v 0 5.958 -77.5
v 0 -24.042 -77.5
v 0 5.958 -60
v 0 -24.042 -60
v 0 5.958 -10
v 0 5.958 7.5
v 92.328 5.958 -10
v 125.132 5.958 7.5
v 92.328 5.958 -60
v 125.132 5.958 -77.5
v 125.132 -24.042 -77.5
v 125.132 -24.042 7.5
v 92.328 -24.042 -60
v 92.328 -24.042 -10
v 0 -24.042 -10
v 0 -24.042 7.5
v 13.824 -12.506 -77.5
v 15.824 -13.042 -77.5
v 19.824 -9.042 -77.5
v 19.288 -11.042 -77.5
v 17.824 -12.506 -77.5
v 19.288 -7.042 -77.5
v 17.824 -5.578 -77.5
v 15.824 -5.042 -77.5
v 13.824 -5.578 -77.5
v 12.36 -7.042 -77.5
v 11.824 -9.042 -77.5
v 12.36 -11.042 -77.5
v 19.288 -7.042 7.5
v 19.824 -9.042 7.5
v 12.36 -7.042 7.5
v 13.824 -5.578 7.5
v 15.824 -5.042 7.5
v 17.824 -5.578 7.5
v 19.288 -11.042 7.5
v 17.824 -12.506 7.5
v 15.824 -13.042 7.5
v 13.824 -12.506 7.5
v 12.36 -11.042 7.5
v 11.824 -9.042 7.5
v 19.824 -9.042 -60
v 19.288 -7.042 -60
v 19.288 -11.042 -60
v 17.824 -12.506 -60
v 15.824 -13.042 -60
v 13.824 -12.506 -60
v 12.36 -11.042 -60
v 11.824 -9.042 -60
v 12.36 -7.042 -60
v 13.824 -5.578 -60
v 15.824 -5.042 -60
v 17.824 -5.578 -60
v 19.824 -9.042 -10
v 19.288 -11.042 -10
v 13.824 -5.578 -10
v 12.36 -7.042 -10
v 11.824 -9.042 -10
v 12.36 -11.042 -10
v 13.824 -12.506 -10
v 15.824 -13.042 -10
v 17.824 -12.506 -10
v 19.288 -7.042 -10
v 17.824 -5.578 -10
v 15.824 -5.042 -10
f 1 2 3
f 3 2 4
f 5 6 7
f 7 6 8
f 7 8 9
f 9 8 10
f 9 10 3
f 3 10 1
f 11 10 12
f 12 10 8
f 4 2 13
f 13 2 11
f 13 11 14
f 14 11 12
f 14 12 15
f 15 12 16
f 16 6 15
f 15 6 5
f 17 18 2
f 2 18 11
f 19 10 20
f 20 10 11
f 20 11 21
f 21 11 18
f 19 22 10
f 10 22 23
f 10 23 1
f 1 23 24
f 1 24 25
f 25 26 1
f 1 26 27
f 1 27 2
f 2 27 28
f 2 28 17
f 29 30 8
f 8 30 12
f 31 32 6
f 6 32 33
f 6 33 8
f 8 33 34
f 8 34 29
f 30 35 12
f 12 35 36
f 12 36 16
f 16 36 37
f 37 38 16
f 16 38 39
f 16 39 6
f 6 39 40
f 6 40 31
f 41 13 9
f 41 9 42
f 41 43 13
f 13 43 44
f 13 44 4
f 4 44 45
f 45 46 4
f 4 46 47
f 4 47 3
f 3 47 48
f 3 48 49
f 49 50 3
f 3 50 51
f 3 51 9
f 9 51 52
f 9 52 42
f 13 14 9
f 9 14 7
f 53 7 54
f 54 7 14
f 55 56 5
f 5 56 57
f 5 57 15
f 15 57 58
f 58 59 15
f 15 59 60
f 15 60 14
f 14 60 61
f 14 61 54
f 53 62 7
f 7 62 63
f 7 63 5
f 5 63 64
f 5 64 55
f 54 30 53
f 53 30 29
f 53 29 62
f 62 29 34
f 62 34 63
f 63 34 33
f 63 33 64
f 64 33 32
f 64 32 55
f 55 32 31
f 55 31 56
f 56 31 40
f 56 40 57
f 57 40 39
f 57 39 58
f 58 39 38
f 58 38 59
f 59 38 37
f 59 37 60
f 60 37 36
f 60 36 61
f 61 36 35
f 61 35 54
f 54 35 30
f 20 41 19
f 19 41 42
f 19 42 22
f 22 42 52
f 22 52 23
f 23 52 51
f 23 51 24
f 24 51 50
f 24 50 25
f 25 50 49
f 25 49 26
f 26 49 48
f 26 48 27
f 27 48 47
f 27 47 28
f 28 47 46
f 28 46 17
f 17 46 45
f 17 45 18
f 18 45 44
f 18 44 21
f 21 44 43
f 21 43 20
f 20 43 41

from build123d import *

# Parameters (mm, degrees)
EXTRUDE_START       = 7.5
SKETCH_1_W          = 125.131658012
SKETCH_1_H          = 30
EXTRUDE_1_DEPTH     = 85
SKETCH_3_W          = 94.594294475
SKETCH_3_H          = 50
CUT_EXTRUDE_1_DEPTH = 43.5
SKETCH_4_R          = 4
CUT_EXTRUDE_2_DEPTH = 100


with BuildPart() as part:
    # Эскиз1 → Вытянуть1 (new body)
    with BuildSketch(Plane.XY.offset(EXTRUDE_START)):
        with Locations((62.565829006, -9.041900761)):
            Rectangle(SKETCH_1_W, SKETCH_1_H)
    extrude(amount=-EXTRUDE_1_DEPTH)

    # Эскиз3 → Вырез-Вытянуть1 (cut, symmetric)
    with BuildSketch(Plane(origin=(0, 0, 0), x_dir=(1, 0, 0), z_dir=(0, 1, 0))):
        with Locations((45.031047777, 35)):
            Rectangle(SKETCH_3_W, SKETCH_3_H)
    extrude(amount=CUT_EXTRUDE_1_DEPTH, both=True, mode=Mode.SUBTRACT)

    # Эскиз4 → Вырез-Вытянуть2 (cut, symmetric)
    with BuildSketch(Plane.XY):
        with Locations((15.823953055, -9.041900761)):
            Circle(SKETCH_4_R)
    extrude(amount=CUT_EXTRUDE_2_DEPTH, both=True, mode=Mode.SUBTRACT)


solid = part.part
